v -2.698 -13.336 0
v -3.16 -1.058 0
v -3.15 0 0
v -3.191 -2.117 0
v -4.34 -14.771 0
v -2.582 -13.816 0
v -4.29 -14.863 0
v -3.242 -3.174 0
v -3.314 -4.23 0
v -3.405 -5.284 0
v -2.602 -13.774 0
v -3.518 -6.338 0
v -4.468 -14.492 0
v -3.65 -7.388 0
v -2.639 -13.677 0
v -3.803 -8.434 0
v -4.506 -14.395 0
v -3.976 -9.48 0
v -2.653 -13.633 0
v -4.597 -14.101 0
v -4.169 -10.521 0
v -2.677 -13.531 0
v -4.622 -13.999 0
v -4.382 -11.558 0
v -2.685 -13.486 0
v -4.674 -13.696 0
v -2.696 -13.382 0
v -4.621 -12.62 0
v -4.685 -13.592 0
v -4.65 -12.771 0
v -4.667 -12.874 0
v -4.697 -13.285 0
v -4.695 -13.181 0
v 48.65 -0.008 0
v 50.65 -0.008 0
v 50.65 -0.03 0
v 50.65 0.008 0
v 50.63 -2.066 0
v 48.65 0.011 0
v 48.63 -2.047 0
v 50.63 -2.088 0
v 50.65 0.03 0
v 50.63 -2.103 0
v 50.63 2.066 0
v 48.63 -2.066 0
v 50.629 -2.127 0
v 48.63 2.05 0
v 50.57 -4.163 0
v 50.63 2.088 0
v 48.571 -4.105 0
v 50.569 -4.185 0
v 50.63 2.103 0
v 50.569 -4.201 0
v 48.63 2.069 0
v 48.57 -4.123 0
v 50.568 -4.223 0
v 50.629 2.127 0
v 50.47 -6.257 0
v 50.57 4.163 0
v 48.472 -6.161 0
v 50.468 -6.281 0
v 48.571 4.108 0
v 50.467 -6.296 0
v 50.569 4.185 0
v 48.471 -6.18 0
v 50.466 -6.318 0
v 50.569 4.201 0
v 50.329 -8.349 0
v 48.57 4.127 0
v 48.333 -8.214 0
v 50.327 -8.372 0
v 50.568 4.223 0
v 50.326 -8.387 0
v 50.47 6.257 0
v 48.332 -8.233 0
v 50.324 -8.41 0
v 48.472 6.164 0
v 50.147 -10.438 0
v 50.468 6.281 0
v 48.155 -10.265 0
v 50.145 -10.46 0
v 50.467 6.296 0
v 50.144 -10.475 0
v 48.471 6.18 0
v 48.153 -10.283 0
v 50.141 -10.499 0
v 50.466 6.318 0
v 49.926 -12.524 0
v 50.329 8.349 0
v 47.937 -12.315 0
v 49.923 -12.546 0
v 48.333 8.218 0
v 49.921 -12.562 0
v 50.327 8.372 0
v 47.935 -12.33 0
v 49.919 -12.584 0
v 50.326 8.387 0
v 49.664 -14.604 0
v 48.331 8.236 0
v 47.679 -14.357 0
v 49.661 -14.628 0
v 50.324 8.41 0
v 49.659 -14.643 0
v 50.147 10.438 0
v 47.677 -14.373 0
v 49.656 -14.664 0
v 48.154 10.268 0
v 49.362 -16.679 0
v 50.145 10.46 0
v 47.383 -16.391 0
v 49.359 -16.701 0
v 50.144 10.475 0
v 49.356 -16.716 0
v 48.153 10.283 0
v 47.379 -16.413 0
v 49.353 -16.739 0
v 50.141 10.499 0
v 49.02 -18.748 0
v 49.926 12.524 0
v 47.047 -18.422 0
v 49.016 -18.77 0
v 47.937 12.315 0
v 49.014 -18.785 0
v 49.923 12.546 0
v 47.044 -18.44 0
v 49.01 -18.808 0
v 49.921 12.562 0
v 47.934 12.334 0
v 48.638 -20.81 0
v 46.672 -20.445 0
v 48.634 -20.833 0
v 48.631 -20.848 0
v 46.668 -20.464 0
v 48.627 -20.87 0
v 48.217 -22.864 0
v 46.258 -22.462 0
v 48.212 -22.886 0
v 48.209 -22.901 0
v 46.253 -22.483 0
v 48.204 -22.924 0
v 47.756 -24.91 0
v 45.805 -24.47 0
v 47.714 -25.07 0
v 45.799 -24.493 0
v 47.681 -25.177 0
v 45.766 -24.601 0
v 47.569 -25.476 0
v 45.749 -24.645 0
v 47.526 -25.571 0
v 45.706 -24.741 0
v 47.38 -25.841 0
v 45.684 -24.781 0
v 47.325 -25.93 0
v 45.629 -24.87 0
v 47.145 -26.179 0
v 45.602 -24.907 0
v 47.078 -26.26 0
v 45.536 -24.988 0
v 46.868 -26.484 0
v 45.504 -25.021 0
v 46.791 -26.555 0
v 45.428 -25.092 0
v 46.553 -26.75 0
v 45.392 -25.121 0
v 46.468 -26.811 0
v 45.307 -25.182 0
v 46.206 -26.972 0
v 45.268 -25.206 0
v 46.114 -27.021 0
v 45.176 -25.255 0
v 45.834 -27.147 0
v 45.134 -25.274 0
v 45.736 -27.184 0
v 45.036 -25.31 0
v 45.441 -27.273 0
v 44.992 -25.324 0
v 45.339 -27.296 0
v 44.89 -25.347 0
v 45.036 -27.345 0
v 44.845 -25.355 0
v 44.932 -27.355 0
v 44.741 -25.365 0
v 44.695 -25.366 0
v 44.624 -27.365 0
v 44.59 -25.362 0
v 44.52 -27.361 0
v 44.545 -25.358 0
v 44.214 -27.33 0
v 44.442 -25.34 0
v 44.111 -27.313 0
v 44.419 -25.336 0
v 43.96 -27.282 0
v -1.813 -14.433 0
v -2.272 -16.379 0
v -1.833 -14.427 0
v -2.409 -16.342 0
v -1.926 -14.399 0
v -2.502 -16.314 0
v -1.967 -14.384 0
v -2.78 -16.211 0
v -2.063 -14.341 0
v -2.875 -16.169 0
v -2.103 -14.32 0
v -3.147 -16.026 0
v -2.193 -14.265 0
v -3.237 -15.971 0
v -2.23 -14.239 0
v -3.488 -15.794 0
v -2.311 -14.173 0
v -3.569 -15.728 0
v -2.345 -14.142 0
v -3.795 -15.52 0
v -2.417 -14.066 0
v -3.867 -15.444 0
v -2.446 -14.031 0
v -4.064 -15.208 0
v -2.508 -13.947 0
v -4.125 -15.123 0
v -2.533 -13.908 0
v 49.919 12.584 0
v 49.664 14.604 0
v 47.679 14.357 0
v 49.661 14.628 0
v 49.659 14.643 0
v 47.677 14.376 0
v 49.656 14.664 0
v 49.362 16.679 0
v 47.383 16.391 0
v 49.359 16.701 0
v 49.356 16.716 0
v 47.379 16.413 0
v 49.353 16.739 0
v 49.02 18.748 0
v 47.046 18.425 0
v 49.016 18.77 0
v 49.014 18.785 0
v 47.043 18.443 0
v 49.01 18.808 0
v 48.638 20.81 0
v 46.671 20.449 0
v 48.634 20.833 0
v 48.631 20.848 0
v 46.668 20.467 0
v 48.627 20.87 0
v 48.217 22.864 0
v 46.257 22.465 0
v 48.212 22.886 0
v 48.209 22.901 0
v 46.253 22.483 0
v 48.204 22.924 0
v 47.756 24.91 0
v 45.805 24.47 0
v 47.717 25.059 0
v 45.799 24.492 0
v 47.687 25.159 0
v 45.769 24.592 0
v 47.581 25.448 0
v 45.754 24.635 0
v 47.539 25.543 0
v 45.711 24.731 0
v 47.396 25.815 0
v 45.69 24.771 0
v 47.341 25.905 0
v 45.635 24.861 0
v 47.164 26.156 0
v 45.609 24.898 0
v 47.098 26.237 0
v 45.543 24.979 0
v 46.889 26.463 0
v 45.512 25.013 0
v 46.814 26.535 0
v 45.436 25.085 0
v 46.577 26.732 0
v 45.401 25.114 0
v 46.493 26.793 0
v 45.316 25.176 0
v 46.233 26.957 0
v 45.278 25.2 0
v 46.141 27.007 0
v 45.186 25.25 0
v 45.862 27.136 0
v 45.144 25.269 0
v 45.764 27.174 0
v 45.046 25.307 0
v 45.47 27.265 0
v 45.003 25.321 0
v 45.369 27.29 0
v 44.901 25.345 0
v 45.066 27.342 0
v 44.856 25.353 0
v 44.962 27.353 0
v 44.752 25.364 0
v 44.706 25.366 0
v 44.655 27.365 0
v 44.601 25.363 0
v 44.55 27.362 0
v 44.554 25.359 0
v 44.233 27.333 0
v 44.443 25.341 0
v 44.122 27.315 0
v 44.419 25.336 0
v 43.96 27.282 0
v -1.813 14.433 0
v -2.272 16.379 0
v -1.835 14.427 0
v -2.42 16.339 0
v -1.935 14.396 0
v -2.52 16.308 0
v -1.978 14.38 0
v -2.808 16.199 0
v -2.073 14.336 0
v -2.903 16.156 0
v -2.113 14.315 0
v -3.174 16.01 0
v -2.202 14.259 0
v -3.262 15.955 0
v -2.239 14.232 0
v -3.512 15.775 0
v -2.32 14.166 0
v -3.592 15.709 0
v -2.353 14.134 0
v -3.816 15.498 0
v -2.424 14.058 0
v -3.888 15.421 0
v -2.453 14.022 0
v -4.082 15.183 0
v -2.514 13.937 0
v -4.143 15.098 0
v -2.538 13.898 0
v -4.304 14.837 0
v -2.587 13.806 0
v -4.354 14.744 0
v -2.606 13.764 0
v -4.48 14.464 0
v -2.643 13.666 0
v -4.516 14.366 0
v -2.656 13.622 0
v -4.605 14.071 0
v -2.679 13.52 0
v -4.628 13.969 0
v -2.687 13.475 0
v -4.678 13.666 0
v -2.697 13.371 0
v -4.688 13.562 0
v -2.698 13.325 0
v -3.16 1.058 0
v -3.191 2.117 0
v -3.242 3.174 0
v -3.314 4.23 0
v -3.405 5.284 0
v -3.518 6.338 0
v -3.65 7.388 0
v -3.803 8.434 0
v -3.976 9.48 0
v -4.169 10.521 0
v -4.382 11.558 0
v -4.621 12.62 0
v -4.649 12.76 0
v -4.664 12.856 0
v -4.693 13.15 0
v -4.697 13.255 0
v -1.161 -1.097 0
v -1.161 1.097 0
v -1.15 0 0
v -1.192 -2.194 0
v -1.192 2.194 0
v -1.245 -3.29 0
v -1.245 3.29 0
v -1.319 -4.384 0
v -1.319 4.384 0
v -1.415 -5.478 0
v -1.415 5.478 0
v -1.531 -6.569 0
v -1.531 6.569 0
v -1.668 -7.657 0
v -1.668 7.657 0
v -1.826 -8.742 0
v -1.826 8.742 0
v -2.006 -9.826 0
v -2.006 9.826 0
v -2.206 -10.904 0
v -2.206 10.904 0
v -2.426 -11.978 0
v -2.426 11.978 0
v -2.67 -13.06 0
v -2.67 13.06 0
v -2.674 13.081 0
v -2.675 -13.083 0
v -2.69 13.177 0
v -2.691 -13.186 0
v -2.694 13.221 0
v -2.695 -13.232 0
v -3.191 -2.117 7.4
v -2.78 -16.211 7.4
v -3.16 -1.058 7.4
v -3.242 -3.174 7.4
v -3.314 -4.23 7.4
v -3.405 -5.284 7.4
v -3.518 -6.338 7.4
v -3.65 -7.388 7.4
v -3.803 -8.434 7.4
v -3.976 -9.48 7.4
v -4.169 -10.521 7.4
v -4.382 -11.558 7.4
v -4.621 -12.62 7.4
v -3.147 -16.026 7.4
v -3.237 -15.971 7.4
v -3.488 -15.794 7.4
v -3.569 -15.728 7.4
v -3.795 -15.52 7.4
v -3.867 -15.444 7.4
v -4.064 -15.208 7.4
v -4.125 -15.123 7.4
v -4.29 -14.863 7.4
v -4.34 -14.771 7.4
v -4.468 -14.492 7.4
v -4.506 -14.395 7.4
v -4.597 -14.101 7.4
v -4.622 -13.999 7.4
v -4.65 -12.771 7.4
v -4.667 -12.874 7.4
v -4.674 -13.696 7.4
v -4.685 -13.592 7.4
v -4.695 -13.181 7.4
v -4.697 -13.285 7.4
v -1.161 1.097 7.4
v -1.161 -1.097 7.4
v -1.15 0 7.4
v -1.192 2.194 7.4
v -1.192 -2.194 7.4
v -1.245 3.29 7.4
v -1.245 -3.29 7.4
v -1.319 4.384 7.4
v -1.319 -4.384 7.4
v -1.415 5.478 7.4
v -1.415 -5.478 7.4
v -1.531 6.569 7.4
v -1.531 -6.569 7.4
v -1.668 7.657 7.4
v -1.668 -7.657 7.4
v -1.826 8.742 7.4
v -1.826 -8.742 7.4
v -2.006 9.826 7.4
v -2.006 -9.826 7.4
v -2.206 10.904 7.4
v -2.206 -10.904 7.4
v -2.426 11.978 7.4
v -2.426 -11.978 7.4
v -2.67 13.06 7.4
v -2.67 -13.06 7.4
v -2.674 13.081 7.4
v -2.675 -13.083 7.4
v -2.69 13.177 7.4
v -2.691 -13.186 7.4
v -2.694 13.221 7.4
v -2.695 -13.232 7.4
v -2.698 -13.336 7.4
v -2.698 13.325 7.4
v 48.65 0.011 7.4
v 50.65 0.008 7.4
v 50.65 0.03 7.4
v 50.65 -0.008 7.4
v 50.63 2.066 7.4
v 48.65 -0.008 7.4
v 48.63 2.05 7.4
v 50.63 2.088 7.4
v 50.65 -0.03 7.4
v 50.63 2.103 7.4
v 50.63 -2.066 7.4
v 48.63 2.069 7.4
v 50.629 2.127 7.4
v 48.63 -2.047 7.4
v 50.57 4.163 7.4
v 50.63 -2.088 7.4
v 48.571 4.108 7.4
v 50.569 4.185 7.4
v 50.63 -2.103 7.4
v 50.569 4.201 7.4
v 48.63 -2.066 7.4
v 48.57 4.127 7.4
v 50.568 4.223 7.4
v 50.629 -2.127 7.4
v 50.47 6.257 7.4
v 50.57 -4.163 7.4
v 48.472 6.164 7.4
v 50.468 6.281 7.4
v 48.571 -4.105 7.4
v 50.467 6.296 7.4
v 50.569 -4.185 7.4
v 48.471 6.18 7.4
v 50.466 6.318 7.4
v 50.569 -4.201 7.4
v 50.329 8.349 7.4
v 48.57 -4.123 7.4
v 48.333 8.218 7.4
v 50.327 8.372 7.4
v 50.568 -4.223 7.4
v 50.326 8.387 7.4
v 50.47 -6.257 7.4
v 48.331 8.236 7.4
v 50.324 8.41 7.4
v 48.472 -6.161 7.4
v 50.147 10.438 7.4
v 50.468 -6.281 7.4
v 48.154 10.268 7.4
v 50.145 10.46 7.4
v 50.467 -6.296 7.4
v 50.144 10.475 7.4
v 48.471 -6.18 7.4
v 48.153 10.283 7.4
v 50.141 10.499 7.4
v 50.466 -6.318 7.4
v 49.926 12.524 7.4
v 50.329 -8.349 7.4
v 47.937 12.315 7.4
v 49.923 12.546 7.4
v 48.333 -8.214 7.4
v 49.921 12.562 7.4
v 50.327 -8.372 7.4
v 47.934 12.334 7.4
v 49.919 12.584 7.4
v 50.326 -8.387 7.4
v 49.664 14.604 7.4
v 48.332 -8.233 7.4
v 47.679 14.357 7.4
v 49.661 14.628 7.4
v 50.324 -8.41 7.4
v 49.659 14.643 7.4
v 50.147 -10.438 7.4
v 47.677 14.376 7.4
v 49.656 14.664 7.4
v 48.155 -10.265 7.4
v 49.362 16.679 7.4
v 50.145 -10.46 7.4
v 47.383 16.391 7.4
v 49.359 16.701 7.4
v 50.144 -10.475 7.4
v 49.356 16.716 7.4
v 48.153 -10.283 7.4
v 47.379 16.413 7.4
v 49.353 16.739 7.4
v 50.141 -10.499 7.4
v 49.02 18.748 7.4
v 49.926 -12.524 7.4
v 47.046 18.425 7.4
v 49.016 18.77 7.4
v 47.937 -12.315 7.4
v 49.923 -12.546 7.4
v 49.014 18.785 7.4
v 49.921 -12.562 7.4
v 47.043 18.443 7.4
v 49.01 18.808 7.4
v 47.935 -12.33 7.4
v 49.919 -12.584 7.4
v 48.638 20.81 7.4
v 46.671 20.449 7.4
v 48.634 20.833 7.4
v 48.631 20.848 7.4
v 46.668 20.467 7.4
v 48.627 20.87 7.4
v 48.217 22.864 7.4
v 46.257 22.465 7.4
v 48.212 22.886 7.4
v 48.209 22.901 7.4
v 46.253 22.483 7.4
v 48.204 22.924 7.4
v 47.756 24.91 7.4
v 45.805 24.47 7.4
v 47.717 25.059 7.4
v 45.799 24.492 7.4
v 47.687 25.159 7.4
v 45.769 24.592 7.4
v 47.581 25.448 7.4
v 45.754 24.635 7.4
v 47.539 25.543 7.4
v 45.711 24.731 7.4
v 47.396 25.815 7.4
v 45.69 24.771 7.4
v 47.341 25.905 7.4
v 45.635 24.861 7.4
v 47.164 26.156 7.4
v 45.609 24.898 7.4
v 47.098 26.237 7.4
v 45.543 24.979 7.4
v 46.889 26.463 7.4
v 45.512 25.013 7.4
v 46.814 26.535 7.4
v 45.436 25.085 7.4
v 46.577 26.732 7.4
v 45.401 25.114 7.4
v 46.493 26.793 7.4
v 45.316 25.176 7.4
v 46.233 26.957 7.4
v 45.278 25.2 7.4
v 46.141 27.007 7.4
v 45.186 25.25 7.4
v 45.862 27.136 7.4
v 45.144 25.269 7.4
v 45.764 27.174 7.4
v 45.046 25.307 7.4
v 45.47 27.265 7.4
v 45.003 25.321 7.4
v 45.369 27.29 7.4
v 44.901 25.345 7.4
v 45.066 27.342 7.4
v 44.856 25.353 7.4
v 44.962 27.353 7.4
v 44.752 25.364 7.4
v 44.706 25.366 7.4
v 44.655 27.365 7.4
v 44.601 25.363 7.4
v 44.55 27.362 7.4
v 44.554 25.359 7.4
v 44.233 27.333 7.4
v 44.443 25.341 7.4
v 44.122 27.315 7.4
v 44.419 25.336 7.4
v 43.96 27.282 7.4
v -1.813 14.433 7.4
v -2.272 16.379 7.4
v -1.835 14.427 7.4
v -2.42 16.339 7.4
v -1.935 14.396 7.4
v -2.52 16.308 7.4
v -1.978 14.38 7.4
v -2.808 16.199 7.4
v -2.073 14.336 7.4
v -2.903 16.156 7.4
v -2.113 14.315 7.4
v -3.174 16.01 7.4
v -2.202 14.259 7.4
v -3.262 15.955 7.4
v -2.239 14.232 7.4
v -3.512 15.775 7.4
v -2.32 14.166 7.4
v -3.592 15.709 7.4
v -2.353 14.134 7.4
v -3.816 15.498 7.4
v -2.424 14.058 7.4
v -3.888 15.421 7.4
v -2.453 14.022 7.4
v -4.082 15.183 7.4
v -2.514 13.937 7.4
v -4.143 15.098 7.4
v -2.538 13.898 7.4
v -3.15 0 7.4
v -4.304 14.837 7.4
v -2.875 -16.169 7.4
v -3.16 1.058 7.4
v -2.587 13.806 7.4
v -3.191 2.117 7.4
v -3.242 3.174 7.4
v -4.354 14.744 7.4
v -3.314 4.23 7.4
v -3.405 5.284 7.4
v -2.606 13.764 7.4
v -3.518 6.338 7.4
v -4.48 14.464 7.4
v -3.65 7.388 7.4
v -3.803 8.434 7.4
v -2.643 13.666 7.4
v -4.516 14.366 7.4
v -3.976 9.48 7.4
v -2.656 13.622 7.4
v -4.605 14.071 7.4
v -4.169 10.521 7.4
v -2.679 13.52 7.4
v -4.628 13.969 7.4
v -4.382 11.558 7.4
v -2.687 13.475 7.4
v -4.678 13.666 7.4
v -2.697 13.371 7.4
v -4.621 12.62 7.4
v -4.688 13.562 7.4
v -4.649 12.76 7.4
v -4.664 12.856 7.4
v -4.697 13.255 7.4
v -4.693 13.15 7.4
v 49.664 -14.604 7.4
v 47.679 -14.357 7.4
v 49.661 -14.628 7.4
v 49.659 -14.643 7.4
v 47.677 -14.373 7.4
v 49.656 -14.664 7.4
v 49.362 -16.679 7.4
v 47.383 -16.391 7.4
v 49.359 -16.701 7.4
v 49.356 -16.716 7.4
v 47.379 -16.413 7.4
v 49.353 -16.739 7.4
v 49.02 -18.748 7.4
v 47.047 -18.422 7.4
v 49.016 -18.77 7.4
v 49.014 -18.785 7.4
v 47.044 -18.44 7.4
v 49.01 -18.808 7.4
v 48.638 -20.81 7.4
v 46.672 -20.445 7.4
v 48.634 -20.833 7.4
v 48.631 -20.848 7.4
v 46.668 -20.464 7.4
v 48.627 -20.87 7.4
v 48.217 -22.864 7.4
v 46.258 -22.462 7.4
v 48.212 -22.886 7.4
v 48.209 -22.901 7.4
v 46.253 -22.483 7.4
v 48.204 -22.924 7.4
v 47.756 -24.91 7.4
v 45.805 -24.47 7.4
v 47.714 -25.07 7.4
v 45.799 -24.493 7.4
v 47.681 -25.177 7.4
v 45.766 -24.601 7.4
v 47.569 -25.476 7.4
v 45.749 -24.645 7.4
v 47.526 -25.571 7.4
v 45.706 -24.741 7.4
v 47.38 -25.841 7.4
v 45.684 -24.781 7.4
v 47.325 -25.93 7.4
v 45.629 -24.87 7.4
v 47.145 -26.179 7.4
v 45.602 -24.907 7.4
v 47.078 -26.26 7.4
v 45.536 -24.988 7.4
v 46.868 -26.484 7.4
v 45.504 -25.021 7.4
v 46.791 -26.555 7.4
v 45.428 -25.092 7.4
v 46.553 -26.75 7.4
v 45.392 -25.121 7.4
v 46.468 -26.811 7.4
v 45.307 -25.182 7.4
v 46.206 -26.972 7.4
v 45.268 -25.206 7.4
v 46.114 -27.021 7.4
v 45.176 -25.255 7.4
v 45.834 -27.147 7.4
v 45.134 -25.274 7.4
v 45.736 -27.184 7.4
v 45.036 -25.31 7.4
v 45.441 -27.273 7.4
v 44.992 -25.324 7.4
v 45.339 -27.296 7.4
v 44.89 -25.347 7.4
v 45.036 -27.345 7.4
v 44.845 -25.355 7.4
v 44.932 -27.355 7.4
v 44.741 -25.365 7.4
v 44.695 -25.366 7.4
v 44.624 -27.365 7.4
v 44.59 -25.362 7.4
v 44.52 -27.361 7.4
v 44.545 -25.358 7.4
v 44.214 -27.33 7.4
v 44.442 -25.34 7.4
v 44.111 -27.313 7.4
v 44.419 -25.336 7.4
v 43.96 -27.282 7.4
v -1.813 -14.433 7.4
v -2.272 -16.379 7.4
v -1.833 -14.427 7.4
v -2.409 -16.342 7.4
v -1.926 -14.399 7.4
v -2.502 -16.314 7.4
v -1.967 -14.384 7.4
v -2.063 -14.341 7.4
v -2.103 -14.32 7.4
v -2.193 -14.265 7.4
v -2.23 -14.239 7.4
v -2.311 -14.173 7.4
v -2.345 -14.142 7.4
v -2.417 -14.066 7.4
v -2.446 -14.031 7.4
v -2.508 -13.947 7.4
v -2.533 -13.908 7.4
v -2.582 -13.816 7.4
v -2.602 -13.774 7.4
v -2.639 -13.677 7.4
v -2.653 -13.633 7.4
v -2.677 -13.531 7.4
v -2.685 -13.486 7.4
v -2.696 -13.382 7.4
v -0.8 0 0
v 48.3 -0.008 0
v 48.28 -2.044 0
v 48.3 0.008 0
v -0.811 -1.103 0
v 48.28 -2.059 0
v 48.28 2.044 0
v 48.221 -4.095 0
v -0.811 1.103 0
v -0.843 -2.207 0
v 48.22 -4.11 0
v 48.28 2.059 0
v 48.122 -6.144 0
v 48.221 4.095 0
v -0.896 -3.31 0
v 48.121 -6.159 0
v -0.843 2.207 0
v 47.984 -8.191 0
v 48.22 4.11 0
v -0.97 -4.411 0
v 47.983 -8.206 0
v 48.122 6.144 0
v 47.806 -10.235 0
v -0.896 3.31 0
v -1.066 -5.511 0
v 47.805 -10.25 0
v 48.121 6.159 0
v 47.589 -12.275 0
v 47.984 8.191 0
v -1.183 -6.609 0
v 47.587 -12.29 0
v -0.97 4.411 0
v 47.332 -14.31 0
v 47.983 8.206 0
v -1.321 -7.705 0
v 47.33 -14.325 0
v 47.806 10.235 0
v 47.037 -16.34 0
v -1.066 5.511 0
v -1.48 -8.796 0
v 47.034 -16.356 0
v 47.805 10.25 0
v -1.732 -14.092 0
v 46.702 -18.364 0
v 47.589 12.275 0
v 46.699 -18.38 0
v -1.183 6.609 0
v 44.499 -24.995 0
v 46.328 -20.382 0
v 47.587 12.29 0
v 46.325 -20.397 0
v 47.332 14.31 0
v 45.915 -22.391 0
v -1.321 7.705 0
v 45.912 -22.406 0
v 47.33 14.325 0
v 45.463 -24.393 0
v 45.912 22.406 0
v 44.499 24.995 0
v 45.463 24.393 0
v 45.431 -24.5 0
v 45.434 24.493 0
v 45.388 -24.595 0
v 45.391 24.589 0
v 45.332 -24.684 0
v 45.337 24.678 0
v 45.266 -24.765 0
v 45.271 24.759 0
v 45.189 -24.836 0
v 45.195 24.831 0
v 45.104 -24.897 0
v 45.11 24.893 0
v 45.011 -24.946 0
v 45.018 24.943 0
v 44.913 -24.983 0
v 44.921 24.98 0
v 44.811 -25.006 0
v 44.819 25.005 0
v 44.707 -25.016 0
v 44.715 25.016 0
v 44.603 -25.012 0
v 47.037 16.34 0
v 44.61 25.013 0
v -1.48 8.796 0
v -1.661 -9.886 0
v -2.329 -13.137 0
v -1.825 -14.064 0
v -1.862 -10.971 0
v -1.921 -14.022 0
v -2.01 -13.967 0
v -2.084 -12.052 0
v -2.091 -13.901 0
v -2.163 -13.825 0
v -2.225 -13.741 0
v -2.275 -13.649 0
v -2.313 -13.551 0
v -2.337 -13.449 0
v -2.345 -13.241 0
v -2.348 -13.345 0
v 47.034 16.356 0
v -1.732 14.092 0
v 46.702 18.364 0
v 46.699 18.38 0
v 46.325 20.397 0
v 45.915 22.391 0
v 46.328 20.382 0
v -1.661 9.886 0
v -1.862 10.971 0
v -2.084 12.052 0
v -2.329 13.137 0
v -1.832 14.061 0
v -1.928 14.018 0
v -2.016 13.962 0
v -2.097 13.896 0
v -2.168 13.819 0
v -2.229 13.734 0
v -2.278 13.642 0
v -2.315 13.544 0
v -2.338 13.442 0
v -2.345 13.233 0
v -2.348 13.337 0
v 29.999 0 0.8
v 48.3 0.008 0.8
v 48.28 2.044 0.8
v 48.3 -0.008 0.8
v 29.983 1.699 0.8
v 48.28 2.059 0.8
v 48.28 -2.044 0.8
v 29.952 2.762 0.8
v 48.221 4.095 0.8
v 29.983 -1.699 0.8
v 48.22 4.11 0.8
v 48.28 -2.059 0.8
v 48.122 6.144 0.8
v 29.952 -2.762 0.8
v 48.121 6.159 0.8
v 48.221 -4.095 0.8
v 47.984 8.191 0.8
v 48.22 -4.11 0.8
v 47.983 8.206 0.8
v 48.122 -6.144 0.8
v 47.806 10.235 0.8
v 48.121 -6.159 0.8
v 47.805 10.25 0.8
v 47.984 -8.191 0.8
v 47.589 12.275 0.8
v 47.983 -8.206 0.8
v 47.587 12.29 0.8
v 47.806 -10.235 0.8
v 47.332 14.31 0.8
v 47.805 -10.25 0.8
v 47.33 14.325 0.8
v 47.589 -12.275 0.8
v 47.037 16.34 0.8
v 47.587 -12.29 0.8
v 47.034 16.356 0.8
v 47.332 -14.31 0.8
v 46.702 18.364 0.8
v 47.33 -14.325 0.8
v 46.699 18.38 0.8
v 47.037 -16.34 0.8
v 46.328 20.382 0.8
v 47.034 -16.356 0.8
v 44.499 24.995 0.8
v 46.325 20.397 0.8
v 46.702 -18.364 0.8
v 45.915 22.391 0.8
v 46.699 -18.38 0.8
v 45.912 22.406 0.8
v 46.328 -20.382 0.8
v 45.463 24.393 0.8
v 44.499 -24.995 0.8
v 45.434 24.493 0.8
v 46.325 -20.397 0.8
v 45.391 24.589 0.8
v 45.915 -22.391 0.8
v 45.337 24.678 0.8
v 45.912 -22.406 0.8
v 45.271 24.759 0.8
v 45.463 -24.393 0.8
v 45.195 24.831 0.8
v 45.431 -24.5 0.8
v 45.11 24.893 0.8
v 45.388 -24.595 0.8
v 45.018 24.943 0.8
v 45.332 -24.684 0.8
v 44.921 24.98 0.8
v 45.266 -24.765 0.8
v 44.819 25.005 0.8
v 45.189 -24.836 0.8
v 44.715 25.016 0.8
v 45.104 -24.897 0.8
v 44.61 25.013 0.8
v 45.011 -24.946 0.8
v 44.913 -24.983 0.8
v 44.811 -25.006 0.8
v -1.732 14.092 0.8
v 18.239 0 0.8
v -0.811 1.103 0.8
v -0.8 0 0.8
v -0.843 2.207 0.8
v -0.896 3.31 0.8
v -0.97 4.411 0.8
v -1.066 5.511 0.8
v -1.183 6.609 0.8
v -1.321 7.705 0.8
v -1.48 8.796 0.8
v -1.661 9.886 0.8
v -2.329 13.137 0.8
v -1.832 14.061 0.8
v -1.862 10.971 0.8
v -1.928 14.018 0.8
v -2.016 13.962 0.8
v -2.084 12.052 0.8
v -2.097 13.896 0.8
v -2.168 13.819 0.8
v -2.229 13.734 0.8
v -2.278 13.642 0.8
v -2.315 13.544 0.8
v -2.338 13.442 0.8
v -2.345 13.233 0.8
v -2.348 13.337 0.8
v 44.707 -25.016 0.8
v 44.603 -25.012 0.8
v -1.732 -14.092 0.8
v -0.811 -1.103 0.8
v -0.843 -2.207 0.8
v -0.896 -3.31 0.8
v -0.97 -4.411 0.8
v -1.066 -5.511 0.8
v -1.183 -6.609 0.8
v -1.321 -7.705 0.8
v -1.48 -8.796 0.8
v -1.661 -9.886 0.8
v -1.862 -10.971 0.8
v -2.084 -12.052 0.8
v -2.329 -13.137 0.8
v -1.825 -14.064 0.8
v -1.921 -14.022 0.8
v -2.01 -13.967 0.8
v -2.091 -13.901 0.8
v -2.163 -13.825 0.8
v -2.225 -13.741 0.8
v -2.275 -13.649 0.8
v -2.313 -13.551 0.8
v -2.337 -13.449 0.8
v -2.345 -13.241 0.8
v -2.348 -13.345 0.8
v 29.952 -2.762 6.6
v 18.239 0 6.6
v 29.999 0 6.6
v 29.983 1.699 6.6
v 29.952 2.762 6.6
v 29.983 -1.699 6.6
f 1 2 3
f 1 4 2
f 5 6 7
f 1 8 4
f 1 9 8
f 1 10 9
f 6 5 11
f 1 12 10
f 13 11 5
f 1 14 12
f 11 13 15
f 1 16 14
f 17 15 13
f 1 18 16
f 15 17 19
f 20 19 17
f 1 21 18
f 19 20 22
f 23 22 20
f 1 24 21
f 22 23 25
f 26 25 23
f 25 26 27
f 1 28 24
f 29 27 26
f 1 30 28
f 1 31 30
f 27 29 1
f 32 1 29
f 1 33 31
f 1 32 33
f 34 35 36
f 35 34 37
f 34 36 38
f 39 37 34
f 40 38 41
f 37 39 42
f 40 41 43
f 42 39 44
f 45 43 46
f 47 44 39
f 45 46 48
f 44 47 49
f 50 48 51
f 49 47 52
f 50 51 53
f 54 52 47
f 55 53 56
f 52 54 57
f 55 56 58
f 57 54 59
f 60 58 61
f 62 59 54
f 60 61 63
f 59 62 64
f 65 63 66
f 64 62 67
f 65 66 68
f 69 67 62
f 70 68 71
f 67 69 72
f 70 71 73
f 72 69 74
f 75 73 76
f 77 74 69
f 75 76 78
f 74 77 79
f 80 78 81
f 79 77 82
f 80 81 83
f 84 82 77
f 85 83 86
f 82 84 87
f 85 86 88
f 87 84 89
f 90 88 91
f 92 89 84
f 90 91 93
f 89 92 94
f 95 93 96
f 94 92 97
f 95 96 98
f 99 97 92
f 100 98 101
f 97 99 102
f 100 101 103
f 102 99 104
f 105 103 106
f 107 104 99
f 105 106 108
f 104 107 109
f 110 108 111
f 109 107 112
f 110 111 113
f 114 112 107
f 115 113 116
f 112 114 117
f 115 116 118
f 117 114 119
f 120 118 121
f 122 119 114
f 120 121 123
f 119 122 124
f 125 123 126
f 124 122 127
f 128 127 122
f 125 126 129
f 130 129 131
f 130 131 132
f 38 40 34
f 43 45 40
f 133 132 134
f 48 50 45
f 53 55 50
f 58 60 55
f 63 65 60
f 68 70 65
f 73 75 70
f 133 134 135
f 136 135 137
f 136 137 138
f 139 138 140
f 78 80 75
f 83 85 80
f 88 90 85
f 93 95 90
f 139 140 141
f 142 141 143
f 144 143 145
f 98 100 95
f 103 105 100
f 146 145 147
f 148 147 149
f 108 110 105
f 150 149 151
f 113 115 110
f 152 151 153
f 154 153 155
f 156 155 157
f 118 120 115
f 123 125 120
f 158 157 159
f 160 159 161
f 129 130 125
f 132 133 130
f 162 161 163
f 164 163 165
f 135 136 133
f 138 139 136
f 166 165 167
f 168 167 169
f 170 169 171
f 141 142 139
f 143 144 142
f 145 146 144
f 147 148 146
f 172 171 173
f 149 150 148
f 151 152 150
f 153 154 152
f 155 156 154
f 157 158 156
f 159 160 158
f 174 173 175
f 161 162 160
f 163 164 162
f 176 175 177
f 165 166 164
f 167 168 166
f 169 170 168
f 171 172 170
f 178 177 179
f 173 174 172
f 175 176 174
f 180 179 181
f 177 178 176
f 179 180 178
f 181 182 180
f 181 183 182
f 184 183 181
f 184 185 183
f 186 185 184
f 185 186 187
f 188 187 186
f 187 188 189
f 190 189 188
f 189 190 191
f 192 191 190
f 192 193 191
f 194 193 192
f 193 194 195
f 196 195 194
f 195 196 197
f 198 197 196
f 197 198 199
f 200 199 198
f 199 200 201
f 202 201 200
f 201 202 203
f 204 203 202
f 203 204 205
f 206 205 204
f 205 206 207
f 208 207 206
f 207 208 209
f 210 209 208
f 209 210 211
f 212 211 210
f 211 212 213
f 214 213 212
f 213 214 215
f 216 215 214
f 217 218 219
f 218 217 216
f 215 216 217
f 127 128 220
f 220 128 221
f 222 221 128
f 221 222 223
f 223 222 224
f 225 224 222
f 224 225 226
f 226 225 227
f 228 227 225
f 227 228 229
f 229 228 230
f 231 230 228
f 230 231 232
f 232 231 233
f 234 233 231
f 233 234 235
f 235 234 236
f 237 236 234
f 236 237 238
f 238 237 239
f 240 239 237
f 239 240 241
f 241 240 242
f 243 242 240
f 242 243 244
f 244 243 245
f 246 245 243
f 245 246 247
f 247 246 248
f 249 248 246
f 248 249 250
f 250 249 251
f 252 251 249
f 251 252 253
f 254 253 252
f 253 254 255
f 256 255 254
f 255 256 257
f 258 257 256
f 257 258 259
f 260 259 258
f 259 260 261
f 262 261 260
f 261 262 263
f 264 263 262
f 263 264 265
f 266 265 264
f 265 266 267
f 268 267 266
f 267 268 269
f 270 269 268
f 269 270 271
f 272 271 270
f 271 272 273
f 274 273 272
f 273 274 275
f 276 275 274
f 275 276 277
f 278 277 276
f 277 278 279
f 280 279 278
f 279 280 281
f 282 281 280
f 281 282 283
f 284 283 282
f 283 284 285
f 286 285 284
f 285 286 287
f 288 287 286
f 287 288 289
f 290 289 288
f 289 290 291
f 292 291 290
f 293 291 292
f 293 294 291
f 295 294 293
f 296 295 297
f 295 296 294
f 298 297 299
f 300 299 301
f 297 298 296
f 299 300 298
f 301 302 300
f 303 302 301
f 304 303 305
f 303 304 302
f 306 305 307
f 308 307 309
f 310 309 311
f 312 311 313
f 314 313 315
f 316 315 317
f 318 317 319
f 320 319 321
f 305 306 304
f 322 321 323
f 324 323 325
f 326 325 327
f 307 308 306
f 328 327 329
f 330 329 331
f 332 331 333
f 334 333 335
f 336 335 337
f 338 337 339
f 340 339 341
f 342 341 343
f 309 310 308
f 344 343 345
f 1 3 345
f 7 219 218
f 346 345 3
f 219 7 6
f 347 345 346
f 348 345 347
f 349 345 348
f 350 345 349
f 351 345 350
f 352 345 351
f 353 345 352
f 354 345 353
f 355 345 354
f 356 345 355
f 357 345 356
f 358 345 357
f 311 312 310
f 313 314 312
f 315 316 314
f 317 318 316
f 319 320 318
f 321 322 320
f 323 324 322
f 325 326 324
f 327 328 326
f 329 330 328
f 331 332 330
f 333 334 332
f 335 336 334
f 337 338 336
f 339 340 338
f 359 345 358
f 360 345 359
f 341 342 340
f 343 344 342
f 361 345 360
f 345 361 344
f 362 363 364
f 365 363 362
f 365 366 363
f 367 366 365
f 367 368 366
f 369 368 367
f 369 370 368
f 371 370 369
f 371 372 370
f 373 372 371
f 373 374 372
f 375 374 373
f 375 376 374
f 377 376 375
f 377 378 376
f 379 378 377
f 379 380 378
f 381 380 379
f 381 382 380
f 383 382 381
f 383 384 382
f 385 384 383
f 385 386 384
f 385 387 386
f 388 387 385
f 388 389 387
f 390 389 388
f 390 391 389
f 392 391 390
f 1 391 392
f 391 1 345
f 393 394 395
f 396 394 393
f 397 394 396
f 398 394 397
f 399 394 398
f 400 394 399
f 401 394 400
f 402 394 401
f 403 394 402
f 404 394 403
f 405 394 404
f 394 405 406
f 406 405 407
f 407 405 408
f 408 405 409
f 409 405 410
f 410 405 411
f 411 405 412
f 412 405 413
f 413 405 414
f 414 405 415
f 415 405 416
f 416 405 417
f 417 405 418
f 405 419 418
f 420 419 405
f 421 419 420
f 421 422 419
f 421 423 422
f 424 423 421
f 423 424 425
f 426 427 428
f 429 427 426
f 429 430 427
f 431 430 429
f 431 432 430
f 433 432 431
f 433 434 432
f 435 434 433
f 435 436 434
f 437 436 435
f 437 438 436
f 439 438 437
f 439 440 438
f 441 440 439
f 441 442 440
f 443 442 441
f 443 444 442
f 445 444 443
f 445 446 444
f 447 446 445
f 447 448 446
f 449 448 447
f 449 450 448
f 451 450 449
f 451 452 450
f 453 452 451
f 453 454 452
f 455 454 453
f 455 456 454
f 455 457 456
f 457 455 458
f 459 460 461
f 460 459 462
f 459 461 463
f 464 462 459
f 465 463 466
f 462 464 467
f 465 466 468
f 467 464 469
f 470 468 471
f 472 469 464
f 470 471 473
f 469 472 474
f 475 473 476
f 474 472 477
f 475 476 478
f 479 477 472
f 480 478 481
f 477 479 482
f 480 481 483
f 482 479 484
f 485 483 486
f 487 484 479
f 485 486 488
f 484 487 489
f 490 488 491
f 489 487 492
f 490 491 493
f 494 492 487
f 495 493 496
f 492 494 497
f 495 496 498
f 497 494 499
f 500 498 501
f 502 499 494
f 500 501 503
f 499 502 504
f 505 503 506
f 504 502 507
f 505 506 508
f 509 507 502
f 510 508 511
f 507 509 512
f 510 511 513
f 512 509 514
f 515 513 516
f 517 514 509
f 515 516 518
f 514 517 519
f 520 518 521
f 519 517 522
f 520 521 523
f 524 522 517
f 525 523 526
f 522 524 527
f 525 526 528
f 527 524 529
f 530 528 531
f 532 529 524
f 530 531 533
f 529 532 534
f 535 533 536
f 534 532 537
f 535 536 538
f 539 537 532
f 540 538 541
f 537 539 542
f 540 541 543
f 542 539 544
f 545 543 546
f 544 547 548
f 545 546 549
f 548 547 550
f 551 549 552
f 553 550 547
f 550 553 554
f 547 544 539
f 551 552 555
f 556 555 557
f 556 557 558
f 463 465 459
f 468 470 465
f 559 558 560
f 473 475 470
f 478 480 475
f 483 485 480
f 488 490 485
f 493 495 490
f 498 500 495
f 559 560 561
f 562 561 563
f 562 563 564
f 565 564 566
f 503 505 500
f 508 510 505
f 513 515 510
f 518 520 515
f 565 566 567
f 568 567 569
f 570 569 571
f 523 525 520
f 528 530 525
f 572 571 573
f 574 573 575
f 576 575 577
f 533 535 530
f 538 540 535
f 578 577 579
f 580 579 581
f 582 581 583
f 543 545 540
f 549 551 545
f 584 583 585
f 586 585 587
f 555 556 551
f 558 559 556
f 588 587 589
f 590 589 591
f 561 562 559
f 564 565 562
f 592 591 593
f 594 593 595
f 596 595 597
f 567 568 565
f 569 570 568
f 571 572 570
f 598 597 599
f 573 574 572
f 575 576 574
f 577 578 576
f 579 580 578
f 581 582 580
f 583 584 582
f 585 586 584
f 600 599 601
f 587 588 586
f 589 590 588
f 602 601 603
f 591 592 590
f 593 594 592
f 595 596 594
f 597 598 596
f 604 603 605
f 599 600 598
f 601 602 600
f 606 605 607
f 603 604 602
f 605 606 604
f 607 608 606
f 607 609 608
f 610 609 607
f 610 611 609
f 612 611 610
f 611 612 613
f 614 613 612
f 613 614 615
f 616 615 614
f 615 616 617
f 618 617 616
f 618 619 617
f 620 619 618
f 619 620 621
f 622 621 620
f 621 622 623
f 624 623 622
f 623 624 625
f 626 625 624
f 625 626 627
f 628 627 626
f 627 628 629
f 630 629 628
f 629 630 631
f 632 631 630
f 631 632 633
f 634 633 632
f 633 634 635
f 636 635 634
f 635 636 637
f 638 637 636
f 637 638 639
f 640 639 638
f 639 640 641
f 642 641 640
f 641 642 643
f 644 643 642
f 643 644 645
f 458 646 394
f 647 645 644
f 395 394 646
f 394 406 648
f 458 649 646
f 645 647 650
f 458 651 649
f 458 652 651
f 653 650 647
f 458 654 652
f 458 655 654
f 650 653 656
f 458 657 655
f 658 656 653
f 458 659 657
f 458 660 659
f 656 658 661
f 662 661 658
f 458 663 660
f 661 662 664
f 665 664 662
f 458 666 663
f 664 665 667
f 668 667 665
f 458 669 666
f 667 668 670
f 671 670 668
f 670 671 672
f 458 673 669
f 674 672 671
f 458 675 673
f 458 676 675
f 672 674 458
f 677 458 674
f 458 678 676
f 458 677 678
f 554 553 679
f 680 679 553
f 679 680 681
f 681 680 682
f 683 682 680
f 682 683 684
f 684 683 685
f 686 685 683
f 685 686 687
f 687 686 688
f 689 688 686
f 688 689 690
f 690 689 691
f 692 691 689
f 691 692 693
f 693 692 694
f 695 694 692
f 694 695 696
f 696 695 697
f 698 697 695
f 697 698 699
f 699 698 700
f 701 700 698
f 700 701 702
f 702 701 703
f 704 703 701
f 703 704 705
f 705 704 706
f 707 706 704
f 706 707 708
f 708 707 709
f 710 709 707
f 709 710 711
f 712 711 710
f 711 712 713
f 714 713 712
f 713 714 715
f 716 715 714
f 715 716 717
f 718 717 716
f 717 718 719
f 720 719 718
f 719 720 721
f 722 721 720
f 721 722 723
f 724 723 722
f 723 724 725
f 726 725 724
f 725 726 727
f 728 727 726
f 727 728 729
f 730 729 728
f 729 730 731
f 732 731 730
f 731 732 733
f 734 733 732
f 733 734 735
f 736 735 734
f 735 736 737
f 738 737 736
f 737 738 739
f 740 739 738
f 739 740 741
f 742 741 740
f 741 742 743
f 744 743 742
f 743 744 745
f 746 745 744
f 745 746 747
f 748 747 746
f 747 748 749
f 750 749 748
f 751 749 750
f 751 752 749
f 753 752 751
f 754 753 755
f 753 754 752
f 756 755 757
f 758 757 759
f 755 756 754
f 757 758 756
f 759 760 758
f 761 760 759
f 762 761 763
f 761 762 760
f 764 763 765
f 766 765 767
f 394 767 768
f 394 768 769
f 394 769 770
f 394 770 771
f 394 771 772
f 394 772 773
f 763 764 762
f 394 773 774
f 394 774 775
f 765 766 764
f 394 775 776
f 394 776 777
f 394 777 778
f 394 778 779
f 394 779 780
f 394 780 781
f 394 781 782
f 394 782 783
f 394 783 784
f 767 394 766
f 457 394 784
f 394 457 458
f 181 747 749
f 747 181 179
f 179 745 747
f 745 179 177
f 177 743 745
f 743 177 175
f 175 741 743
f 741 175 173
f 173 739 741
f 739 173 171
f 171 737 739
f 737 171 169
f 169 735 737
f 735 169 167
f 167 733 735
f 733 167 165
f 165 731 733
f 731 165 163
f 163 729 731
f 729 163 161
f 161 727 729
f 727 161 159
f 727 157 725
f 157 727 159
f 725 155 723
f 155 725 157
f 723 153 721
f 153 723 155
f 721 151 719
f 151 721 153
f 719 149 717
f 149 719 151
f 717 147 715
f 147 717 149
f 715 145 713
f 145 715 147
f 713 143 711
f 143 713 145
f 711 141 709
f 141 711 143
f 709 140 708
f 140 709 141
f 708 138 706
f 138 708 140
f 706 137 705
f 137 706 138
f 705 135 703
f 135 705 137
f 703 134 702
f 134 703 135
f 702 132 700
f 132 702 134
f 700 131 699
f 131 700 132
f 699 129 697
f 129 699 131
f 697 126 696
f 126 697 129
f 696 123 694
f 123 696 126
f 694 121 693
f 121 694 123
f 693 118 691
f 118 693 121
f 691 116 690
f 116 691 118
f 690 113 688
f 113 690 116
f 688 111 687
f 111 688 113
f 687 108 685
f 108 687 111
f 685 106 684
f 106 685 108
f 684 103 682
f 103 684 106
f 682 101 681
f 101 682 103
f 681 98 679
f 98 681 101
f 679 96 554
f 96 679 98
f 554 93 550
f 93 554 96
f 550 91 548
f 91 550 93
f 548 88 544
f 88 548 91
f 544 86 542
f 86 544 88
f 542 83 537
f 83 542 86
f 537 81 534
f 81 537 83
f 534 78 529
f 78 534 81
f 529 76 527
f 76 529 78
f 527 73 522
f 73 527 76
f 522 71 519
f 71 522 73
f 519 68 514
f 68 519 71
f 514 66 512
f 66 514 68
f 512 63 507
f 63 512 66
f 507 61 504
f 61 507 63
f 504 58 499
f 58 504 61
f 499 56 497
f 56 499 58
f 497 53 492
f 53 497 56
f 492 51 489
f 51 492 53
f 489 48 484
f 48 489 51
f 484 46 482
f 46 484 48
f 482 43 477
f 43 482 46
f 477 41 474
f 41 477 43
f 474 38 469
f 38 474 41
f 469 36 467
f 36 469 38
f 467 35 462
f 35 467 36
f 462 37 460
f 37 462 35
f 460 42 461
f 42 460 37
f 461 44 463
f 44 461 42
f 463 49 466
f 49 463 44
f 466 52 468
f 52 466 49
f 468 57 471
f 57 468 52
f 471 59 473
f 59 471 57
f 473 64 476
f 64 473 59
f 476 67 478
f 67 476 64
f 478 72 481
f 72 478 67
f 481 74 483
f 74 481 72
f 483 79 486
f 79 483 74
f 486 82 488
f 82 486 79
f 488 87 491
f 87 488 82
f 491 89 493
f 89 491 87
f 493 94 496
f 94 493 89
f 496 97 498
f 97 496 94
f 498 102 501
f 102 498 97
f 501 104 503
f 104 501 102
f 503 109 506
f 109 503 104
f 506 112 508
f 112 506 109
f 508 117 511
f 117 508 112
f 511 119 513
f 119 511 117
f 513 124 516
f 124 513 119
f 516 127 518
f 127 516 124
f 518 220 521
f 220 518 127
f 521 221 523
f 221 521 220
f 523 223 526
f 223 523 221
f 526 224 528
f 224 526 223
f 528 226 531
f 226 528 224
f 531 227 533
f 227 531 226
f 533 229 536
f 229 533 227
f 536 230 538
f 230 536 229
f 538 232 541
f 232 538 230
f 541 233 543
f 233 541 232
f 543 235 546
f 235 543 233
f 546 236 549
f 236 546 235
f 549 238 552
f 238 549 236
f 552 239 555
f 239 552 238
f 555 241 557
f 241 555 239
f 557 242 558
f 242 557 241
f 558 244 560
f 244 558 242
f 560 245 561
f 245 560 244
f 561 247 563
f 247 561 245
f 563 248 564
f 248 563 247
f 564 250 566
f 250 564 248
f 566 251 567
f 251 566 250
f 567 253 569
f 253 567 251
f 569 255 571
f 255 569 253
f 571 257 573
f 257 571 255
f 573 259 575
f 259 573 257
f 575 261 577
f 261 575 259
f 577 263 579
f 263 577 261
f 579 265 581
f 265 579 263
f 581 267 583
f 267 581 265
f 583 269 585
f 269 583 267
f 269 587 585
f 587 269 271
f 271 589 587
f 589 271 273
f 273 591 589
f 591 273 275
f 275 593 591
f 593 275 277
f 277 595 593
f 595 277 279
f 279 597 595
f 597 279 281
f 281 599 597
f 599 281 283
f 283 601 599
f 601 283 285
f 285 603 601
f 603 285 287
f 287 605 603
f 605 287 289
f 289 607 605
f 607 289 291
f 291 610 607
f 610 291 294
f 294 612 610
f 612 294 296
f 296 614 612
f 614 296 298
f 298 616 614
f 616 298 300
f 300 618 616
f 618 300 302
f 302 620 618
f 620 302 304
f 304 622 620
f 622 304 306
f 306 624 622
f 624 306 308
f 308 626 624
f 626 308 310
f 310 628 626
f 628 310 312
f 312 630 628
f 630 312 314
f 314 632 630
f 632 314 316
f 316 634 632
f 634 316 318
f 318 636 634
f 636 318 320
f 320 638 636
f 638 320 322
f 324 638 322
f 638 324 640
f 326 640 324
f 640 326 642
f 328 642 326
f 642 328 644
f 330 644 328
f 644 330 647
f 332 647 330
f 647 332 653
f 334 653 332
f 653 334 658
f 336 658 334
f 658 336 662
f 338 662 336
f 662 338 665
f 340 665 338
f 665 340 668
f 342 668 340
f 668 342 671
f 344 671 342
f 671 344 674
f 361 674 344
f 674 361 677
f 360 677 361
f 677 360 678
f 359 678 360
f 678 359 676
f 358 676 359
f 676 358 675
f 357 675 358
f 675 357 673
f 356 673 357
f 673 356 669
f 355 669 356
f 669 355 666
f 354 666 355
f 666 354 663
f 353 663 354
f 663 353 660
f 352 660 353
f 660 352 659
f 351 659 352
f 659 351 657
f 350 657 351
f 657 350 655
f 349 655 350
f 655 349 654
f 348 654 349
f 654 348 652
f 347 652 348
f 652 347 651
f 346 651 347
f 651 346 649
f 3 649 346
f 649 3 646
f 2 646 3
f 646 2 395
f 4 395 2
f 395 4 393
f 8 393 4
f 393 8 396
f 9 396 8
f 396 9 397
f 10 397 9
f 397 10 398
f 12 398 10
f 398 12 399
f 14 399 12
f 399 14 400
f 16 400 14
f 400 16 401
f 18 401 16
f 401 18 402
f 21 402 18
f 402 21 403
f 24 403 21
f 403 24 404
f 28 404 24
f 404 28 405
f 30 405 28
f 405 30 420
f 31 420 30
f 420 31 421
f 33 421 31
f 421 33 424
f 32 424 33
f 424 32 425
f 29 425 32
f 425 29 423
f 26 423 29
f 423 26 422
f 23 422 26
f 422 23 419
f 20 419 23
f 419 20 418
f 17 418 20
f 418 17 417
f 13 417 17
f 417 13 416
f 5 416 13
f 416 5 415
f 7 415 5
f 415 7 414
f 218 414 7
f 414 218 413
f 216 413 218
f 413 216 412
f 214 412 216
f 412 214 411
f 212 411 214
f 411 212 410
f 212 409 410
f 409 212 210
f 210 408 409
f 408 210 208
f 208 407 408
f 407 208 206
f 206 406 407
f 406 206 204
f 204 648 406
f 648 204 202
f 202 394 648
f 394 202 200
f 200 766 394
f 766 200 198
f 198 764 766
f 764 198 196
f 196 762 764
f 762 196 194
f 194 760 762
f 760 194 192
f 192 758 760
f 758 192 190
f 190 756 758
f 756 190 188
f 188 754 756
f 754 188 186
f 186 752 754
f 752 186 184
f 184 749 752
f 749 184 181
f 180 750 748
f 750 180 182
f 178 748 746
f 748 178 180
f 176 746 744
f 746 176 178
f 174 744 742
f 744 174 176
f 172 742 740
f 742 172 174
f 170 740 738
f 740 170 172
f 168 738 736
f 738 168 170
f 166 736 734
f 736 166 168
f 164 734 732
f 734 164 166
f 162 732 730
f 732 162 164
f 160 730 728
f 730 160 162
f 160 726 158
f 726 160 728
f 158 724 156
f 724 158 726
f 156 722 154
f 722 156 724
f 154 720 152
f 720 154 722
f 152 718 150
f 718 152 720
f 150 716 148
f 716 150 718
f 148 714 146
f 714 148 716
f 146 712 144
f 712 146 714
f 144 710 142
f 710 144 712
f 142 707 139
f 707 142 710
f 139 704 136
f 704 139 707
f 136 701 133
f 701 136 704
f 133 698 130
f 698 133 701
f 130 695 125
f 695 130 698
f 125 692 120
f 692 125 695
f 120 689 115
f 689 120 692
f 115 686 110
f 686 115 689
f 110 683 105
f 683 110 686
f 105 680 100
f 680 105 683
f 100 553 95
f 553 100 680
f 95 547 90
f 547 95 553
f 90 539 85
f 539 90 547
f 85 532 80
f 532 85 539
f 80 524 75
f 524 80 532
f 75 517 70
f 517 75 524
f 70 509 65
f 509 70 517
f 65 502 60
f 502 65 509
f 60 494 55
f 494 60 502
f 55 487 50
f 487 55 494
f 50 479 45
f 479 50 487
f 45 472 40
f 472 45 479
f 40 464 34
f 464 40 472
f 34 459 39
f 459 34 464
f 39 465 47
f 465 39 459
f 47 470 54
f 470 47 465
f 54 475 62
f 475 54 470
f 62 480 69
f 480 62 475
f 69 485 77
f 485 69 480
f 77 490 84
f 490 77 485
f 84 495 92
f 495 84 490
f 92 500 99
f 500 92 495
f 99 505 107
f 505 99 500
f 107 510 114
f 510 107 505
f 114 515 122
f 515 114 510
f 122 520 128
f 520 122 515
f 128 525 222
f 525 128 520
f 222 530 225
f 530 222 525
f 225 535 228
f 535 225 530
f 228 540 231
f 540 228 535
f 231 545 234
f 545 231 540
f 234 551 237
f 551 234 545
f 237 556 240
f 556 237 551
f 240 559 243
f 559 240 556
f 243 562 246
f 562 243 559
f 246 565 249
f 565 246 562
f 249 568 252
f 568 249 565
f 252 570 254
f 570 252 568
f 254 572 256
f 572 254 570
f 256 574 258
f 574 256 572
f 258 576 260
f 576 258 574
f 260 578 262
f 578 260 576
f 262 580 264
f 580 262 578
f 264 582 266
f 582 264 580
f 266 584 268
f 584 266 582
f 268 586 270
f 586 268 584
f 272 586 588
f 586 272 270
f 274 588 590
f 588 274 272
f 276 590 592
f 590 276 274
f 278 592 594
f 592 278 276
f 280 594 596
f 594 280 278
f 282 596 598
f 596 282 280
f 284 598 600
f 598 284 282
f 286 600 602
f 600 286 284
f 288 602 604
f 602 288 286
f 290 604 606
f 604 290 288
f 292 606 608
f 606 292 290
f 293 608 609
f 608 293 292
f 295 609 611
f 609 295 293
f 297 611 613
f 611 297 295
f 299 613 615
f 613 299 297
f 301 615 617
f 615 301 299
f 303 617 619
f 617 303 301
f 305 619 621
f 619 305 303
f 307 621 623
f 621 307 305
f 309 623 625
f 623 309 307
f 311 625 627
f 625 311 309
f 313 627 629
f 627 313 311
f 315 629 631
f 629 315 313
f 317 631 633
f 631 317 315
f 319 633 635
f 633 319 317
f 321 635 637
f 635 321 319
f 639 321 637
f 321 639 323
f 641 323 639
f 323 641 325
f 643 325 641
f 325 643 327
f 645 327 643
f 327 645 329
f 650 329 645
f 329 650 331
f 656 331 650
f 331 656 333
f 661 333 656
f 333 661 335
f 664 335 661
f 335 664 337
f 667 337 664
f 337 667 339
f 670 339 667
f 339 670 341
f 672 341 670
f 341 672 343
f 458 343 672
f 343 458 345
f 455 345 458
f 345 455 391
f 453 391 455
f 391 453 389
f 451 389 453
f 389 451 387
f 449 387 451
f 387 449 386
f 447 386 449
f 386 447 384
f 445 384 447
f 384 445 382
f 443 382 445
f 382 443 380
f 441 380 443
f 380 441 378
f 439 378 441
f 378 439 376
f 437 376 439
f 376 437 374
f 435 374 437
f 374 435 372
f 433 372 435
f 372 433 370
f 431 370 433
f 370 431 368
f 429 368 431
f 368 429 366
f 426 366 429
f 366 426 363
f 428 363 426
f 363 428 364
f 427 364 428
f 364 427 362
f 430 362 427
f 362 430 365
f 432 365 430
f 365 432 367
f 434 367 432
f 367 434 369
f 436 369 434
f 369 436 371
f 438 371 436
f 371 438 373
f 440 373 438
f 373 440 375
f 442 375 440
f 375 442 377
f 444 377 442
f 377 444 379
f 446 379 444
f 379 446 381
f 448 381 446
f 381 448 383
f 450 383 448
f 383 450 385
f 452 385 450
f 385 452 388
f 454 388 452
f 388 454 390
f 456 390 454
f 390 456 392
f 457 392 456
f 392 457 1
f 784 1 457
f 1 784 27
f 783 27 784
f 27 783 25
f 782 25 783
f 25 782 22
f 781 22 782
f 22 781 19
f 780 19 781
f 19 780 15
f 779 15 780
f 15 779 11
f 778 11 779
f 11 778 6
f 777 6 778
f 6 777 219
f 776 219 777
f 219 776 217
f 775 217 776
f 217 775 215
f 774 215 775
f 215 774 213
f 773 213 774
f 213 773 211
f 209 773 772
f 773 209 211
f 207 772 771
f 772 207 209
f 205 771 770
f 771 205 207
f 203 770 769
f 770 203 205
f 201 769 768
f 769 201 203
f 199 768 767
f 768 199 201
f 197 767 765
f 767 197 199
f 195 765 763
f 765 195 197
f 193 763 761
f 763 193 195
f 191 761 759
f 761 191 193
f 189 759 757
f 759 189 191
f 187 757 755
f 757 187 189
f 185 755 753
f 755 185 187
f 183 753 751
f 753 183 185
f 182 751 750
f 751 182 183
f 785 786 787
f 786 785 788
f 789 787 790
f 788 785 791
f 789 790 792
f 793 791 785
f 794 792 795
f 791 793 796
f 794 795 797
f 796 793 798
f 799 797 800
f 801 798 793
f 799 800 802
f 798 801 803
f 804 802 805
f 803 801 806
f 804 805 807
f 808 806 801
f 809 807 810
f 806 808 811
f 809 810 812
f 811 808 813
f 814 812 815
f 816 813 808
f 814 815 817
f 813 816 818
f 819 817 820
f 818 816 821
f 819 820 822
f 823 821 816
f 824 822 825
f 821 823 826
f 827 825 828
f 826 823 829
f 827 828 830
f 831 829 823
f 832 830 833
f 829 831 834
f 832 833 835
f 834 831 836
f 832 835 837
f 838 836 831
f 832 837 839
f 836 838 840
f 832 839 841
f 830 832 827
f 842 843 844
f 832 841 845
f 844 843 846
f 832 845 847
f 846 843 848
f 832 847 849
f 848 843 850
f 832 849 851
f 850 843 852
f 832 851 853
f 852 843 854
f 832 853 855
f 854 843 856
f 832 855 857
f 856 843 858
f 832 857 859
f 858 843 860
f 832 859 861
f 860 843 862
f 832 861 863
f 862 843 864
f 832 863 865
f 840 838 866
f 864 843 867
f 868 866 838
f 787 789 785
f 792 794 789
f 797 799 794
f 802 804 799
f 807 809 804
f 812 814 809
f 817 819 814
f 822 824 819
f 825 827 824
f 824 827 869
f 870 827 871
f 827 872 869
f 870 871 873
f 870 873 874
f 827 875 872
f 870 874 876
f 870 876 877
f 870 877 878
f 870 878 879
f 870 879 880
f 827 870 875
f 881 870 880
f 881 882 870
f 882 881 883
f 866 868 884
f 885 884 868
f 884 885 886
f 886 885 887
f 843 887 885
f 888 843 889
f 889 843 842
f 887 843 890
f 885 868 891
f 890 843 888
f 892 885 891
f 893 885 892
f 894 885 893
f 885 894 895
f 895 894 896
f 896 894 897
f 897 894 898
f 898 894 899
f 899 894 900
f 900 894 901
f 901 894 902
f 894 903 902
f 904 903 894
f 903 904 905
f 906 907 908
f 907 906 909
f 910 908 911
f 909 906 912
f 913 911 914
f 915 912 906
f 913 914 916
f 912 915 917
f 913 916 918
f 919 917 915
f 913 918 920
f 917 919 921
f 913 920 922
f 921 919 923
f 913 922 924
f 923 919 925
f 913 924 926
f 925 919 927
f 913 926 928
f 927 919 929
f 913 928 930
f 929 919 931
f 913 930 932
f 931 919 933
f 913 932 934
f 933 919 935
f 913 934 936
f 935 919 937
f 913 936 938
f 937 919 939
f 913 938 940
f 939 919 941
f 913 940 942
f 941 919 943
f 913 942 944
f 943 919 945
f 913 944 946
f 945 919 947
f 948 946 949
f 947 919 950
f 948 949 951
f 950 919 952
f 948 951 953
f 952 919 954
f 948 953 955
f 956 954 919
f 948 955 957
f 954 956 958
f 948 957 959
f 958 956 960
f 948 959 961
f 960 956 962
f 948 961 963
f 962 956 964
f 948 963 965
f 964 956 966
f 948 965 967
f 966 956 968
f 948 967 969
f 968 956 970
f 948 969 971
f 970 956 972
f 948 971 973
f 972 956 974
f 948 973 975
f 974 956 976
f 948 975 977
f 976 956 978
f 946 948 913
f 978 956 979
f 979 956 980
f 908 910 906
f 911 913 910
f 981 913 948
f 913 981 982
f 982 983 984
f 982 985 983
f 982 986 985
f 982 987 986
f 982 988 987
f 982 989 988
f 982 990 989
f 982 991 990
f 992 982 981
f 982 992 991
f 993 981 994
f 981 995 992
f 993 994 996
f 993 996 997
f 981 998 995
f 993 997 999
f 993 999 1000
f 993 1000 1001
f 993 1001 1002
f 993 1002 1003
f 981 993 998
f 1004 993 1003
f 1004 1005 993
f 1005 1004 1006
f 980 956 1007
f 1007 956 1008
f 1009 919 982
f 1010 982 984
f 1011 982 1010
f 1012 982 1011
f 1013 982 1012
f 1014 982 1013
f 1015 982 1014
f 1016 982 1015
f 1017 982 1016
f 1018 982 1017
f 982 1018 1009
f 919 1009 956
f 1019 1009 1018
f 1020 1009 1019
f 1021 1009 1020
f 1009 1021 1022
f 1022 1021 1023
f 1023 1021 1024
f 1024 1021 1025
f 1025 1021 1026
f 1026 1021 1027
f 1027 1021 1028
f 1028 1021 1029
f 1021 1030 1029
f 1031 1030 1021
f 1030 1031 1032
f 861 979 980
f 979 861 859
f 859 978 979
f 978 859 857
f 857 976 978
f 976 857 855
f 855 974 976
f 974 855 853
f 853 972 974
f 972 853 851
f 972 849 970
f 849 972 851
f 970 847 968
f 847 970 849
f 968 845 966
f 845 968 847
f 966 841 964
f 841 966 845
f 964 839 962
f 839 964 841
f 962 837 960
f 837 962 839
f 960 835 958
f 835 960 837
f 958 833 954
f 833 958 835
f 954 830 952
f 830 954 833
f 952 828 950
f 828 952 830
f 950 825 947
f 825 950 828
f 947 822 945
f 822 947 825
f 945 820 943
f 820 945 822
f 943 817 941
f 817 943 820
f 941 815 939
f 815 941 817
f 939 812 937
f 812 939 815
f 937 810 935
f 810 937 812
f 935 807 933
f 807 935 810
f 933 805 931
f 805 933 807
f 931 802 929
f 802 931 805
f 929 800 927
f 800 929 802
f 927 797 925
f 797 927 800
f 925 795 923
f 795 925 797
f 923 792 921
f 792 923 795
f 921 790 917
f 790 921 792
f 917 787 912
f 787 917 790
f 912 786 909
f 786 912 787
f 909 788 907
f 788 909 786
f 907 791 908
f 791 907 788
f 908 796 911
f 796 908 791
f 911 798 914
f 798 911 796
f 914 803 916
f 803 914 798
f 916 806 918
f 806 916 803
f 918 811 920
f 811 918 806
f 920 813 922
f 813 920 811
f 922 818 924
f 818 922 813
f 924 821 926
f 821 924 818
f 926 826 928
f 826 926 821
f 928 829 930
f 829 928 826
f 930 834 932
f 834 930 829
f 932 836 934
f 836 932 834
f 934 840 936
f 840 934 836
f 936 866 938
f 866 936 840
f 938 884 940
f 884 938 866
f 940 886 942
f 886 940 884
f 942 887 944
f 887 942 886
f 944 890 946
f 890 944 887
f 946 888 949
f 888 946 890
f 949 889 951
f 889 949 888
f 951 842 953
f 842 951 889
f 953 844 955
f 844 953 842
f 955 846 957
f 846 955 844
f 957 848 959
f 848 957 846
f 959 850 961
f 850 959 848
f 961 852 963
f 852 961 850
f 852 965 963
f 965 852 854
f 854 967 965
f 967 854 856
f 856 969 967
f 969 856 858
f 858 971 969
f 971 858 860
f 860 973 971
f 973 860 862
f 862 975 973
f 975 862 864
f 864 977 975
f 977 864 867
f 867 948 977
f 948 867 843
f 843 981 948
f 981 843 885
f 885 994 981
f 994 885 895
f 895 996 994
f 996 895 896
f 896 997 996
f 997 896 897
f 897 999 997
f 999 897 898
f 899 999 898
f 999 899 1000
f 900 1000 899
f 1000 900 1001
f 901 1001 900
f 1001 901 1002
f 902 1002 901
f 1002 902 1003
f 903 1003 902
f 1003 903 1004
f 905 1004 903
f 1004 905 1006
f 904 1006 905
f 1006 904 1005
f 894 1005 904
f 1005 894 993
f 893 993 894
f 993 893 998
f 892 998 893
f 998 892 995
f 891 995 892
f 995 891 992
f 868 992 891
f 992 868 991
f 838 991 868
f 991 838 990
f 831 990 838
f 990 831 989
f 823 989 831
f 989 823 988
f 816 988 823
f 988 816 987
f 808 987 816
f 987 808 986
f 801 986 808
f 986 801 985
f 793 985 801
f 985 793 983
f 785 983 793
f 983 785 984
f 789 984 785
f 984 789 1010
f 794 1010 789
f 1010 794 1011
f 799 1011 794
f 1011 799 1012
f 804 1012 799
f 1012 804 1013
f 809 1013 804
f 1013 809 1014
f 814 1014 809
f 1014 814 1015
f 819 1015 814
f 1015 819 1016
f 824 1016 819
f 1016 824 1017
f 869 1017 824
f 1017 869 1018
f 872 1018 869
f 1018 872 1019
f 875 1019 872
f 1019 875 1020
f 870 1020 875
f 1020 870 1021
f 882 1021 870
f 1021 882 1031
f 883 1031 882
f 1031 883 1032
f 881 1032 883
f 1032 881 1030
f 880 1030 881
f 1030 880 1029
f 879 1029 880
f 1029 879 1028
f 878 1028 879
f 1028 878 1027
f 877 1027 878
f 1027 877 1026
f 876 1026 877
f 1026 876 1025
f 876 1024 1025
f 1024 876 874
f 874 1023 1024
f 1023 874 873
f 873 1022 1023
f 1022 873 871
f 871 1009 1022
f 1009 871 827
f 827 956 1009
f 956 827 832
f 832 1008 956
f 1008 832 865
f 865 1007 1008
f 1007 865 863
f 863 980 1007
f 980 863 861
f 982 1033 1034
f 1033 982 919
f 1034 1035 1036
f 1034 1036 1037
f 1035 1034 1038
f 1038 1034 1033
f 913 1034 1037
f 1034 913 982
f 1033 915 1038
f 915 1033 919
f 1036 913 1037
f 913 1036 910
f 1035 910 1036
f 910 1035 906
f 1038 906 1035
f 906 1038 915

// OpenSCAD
// Gen-CU — fit coupon (bay part): O20/O5 THROUGH pockets at carrier thickness (test on a steel offcut), 608 seat,
// D-flat bore, gap shim, and one bobbin-bay slice (bobbin footprint + bay_clear) to test former fit.
include <parameters.scad>;
$fn = 48;
// D-flat keyed bore: flat faces +X (angle 0 = magnet pocket 0 = index notch)
module dflat_bore(h) {
    intersection() {
        cylinder(d=shaft_bore, h=h);
        translate([-shaft_bore, -shaft_bore, 0]) cube([shaft_bore + dflat_x, 2*shaft_bore, h]);
    }
}
module sector_2d(r_in, r_out, ang) {
    polygon([
        for (a = [-ang/2 : ang/24 : ang/2]) [r_in*cos(a), r_in*sin(a)],
        for (a = [ang/2 : -ang/24 : -ang/2]) [r_out*cos(a), r_out*sin(a)]
    ]);
}
module footprint_2d() { offset(r=wall) sector_2d(coil_id_r, coil_od_r, span_deg); }
module hub_2d()       { offset(delta=-coil_core_inset) sector_2d(coil_id_r, coil_od_r, span_deg); }

// bay slice at FULL stator thickness with one bobbin BASE printed IN PLACE inside it (bay_clear gap): this is the
// print-in-place test for the one-plate stator. After printing, the base must pop out with finger pressure; if it is fused,
// print coil_former.stl separately (print-packs/parts/) instead of using the in-place bases.
translate([-coil_id_r, 0, 0]) {
    difference() {
        linear_extrude(stator_thick) offset(r=bay_clear + 2) footprint_2d();
        translate([0, 0, -0.1]) linear_extrude(stator_thick + 0.2) offset(r=bay_clear) footprint_2d();
    }
    union() {
        linear_extrude(flange_t) footprint_2d();
        translate([0, 0, flange_t - 0.01]) linear_extrude(former_web + 0.01) hub_2d();
    }
}
